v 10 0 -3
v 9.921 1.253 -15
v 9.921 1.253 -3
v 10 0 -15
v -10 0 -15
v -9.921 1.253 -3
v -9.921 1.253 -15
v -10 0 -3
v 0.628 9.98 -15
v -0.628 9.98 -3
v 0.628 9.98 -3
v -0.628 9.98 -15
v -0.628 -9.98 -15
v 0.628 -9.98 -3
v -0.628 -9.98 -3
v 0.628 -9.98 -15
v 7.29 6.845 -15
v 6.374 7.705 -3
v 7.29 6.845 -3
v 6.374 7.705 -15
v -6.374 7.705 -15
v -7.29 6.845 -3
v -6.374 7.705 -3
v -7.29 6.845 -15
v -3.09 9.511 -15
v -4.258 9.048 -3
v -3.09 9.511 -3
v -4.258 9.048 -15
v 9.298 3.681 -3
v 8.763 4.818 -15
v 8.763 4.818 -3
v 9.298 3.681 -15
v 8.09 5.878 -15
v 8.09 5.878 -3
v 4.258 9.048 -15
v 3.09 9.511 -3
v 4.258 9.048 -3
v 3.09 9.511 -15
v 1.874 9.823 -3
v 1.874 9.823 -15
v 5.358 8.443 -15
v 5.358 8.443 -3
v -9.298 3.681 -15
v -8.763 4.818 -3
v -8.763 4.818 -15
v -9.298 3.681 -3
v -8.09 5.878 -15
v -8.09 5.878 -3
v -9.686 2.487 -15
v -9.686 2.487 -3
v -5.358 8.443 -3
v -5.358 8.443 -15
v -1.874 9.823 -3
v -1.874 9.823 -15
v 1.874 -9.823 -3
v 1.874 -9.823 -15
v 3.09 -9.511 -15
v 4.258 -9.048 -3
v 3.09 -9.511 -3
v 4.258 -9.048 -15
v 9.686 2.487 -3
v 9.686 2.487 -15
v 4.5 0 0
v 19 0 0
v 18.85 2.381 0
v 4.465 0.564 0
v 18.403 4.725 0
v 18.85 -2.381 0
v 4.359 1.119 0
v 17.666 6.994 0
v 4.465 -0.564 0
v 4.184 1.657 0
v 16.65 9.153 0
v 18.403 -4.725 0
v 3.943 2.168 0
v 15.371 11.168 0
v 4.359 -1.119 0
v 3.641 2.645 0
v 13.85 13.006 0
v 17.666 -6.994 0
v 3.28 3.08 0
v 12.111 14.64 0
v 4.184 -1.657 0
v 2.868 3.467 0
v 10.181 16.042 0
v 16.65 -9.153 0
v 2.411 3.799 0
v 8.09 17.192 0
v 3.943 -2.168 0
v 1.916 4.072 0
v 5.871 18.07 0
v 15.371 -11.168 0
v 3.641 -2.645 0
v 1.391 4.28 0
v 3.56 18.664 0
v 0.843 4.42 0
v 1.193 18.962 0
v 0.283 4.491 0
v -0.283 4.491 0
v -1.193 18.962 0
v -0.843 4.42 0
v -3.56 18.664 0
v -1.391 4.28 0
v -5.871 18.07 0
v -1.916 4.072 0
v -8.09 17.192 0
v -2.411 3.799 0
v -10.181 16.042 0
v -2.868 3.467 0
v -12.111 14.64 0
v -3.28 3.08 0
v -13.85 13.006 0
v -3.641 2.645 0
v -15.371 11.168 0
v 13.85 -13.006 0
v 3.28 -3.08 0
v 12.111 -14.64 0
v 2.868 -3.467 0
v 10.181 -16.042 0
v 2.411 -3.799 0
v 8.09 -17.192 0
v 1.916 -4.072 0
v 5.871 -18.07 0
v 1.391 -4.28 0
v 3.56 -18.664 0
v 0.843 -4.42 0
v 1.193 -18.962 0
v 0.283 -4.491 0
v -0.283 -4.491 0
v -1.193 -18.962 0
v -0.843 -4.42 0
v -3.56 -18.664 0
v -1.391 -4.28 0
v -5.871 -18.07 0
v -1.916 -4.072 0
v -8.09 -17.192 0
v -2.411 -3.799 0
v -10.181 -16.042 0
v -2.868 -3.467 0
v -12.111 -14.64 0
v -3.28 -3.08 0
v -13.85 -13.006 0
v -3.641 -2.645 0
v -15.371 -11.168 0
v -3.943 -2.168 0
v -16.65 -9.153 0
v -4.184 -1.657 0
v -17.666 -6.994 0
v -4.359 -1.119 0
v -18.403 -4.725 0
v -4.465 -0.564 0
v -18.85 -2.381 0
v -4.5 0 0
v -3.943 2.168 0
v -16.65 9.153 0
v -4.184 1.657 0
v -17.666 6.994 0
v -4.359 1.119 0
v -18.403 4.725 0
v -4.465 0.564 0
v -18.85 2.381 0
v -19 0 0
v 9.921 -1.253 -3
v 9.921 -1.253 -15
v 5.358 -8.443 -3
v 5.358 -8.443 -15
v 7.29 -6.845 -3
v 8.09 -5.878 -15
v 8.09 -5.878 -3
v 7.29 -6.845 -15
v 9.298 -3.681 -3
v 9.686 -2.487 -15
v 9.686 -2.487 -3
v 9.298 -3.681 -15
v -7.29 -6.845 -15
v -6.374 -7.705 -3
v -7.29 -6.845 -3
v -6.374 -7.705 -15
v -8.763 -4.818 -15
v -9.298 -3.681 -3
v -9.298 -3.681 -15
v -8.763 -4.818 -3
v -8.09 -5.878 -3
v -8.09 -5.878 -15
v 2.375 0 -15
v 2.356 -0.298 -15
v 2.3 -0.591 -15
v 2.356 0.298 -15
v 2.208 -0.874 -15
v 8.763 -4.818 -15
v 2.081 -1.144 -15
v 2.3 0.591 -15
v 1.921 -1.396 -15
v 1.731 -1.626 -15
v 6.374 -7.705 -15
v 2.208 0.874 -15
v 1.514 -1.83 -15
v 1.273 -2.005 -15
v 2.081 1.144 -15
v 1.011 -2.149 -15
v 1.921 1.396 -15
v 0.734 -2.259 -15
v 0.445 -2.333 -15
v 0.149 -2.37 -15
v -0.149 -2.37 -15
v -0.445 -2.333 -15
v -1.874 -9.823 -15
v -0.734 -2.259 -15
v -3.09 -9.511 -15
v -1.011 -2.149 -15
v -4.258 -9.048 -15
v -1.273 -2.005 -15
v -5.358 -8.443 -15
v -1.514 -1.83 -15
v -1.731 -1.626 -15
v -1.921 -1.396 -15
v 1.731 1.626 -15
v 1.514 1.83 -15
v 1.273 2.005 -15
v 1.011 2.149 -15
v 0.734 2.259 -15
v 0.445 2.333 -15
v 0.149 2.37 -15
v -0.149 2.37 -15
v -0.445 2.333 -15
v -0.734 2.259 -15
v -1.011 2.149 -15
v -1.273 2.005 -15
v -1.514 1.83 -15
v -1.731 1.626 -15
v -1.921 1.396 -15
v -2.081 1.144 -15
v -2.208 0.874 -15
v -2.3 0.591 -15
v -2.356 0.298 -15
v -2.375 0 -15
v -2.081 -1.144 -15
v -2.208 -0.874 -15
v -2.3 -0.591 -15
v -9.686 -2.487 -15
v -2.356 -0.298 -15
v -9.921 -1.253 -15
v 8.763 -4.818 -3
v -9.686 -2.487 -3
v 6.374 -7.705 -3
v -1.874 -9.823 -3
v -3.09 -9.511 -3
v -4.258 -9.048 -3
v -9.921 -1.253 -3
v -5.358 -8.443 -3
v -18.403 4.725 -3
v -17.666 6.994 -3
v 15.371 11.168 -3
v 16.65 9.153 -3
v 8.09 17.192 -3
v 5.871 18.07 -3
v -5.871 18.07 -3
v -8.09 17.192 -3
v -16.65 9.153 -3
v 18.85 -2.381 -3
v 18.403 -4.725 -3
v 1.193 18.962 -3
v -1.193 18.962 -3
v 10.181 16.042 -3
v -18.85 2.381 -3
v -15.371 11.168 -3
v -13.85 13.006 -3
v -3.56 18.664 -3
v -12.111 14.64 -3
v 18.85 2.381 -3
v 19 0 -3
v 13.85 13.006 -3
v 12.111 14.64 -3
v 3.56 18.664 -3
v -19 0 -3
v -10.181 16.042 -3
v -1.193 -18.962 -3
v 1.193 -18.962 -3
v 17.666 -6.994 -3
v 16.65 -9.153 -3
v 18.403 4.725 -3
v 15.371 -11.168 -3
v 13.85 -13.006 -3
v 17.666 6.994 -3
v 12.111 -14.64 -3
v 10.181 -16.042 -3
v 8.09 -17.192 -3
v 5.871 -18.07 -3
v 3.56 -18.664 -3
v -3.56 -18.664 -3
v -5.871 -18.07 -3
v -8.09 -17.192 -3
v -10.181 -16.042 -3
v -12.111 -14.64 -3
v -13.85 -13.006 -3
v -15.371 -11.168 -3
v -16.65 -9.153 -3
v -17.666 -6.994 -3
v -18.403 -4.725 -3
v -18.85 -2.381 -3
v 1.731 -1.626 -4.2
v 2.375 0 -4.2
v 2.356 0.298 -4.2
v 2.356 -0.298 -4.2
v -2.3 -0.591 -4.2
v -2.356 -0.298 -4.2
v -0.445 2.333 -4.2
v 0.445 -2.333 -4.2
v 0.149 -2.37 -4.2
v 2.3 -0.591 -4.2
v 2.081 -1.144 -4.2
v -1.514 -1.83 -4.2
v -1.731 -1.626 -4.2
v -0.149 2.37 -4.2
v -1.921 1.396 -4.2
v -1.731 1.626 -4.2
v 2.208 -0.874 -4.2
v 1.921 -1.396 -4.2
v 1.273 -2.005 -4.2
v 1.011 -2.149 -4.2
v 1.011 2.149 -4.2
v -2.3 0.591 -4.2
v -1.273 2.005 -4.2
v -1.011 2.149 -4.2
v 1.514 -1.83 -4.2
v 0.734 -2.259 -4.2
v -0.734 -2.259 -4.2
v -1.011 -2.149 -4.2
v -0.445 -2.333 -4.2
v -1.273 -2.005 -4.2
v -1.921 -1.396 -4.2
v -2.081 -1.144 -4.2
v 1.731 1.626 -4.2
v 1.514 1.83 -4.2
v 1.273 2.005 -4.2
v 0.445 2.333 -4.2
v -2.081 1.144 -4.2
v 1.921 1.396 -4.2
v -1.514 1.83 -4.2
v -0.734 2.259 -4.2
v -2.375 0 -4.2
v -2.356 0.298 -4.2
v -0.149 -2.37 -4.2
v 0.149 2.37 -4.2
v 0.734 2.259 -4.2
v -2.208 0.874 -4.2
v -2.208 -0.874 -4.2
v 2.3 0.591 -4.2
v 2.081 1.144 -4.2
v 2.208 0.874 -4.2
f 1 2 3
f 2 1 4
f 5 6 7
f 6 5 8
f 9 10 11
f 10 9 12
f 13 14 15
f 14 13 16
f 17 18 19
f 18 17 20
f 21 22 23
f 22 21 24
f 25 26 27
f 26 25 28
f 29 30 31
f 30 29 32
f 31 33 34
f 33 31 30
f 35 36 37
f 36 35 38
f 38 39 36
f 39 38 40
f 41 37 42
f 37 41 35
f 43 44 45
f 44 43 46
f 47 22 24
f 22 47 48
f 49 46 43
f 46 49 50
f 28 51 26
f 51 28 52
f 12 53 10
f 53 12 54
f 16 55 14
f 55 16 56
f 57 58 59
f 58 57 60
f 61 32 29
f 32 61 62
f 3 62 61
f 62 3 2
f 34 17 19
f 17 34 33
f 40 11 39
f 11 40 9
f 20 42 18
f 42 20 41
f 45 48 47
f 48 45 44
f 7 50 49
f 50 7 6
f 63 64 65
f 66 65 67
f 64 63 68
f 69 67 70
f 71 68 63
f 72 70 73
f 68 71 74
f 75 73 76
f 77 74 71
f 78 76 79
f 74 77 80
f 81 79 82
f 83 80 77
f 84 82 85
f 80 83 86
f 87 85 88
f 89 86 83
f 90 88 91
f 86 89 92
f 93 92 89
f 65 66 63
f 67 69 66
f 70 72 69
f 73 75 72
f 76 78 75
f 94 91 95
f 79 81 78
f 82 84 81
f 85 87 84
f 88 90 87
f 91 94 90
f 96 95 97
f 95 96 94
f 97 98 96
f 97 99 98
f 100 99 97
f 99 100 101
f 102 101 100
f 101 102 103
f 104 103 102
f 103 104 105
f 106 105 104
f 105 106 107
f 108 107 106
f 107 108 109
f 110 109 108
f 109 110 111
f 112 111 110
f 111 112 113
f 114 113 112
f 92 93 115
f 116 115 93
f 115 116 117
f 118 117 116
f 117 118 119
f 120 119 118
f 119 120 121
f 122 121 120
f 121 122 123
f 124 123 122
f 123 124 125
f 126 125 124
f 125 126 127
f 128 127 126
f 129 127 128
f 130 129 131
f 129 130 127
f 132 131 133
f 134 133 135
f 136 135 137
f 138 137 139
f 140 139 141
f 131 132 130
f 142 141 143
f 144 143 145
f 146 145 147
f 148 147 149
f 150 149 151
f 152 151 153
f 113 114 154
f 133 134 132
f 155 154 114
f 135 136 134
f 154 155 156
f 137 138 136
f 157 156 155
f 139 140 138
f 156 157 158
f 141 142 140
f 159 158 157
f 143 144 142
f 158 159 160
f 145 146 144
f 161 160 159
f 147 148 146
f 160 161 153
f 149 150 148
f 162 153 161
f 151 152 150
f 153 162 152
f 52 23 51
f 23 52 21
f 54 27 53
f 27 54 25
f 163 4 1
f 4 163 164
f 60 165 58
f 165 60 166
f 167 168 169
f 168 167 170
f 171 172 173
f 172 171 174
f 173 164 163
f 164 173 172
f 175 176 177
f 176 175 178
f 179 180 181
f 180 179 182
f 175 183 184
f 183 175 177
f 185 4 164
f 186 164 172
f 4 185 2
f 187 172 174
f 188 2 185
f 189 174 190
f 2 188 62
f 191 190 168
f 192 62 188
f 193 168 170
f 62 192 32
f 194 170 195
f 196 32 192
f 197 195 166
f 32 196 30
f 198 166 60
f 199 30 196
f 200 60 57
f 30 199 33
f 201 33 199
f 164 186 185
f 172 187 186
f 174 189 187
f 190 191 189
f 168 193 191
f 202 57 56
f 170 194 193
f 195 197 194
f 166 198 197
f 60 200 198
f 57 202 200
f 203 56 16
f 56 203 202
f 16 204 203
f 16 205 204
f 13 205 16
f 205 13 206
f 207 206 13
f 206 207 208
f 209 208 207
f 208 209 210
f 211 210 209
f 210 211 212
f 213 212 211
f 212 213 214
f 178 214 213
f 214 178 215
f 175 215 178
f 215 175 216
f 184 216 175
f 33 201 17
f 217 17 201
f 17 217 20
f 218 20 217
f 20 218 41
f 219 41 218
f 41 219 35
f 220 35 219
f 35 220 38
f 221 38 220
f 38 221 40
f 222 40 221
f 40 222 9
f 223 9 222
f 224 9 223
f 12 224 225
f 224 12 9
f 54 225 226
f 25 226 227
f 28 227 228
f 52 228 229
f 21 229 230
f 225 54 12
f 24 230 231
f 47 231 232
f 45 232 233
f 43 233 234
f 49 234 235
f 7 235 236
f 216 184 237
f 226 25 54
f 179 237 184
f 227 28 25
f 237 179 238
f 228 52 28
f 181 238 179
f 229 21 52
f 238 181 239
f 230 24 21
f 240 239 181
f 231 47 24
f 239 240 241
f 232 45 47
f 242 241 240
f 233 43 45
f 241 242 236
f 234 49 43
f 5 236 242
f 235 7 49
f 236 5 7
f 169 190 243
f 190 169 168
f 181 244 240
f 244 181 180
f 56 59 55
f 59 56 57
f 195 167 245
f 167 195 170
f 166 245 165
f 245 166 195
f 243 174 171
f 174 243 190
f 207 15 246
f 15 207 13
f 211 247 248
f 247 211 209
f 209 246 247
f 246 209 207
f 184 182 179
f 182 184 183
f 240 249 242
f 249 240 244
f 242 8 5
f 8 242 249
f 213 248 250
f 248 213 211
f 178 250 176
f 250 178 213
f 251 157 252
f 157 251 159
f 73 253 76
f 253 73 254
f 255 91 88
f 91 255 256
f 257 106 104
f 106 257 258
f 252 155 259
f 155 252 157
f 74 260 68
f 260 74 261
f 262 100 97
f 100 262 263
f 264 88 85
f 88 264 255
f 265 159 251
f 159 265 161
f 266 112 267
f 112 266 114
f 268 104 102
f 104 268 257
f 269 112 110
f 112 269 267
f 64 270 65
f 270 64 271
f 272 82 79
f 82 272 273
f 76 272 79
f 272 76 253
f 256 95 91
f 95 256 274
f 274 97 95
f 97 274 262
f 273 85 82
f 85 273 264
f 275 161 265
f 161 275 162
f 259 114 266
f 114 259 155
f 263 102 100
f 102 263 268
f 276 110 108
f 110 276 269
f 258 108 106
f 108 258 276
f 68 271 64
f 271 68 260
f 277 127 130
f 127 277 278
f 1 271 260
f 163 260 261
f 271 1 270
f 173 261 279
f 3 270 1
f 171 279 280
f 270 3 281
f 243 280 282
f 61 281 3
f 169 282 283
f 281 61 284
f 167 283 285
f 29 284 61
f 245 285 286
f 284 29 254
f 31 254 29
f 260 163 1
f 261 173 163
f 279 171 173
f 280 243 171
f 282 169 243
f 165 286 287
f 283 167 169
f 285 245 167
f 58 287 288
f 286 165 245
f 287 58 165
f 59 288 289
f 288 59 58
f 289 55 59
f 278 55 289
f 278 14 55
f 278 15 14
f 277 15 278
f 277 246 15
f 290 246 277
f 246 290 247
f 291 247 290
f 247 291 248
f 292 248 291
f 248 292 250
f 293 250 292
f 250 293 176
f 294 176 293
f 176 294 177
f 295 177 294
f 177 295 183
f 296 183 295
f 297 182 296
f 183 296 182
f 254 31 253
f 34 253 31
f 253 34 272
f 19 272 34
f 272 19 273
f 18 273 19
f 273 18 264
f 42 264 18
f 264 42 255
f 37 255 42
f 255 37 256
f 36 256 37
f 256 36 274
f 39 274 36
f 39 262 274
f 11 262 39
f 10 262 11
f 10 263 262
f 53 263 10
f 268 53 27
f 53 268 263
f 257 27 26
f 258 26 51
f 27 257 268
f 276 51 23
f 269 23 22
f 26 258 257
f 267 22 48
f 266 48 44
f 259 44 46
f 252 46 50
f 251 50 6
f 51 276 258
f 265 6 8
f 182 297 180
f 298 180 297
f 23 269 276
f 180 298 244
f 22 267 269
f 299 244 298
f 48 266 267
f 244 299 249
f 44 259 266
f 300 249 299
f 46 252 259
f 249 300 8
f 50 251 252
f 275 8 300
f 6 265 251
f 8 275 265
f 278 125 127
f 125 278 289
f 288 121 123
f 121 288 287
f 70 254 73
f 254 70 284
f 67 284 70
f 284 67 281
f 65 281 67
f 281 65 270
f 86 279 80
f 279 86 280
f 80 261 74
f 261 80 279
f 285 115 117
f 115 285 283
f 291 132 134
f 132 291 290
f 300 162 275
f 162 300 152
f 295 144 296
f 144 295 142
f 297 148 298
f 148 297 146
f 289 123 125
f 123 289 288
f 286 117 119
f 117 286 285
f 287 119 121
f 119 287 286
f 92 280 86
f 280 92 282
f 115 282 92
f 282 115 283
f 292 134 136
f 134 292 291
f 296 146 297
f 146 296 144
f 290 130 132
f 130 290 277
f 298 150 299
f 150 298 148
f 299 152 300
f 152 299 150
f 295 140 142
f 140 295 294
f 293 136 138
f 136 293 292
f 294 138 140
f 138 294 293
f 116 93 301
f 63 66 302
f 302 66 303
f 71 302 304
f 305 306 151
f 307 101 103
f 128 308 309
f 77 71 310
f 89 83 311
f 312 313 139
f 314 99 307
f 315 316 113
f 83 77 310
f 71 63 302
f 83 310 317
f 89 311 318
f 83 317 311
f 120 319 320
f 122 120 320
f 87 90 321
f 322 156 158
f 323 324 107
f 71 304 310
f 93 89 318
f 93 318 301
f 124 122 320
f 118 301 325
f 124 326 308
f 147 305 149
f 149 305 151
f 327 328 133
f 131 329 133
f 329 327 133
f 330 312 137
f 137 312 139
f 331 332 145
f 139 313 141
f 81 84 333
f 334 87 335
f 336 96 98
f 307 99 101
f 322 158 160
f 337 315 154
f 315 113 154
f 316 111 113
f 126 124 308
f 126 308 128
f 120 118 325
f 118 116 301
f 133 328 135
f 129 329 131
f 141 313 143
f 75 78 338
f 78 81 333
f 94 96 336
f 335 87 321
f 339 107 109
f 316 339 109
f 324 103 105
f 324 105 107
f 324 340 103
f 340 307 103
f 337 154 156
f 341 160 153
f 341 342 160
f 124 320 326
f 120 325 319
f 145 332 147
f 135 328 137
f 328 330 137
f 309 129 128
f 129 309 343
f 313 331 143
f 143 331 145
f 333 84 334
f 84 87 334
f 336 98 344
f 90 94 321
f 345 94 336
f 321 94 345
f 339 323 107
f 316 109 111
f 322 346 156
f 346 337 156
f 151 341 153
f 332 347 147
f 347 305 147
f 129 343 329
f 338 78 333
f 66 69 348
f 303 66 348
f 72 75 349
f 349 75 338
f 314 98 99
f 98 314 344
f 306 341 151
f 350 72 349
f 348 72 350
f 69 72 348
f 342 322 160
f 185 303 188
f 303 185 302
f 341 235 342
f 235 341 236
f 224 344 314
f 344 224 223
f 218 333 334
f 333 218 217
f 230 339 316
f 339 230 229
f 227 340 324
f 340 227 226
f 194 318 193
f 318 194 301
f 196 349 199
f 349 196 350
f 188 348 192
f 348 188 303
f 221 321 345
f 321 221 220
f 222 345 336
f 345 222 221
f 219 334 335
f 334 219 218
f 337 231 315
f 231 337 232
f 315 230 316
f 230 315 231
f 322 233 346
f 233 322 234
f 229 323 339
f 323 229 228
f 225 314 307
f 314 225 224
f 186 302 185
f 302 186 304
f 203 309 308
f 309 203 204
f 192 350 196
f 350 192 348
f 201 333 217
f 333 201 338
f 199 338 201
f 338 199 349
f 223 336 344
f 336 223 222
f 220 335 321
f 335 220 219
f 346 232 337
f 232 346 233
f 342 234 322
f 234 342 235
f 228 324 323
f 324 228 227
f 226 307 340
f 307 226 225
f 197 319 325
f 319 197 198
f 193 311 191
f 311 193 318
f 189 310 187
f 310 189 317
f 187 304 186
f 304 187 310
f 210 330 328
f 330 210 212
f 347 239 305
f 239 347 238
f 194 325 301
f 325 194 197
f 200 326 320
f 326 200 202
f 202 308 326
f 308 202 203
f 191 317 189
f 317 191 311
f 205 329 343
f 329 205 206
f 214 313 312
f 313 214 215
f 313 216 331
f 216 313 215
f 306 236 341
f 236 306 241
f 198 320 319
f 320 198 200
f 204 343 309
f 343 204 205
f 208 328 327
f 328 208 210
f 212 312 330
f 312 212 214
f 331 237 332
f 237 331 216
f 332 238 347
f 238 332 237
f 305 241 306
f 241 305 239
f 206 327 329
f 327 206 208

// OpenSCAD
$fn = 50;


difference() {
	union() {
		translate(v = [0, 0, -15.0000000000]) {
			cylinder(h = 15, r = 10.0000000000);
		}
		translate(v = [0, 0, -3.0000000000]) {
			cylinder(h = 3, r = 19.0000000000);
		}
	}
	union() {
		translate(v = [0, 0, 0]) {
			rotate(a = [0, 0, 0]) {
				difference() {
					union() {
						#translate(v = [0, 0, -15.0000000000]) {
							cylinder(h = 15, r = 2.2500000000);
						}
						#translate(v = [0, 0, -4.2000000000]) {
							cylinder(h = 4.2000000000, r1 = 2.3750000000, r2 = 4.5000000000);
						}
						#translate(v = [0, 0, -15.0000000000]) {
							cylinder(h = 15, r = 2.3750000000);
						}
						#translate(v = [0, 0, -15.0000000000]) {
							cylinder(h = 15, r = 2.2500000000);
						}
					}
					union();
				}
			}
		}
	}
}
